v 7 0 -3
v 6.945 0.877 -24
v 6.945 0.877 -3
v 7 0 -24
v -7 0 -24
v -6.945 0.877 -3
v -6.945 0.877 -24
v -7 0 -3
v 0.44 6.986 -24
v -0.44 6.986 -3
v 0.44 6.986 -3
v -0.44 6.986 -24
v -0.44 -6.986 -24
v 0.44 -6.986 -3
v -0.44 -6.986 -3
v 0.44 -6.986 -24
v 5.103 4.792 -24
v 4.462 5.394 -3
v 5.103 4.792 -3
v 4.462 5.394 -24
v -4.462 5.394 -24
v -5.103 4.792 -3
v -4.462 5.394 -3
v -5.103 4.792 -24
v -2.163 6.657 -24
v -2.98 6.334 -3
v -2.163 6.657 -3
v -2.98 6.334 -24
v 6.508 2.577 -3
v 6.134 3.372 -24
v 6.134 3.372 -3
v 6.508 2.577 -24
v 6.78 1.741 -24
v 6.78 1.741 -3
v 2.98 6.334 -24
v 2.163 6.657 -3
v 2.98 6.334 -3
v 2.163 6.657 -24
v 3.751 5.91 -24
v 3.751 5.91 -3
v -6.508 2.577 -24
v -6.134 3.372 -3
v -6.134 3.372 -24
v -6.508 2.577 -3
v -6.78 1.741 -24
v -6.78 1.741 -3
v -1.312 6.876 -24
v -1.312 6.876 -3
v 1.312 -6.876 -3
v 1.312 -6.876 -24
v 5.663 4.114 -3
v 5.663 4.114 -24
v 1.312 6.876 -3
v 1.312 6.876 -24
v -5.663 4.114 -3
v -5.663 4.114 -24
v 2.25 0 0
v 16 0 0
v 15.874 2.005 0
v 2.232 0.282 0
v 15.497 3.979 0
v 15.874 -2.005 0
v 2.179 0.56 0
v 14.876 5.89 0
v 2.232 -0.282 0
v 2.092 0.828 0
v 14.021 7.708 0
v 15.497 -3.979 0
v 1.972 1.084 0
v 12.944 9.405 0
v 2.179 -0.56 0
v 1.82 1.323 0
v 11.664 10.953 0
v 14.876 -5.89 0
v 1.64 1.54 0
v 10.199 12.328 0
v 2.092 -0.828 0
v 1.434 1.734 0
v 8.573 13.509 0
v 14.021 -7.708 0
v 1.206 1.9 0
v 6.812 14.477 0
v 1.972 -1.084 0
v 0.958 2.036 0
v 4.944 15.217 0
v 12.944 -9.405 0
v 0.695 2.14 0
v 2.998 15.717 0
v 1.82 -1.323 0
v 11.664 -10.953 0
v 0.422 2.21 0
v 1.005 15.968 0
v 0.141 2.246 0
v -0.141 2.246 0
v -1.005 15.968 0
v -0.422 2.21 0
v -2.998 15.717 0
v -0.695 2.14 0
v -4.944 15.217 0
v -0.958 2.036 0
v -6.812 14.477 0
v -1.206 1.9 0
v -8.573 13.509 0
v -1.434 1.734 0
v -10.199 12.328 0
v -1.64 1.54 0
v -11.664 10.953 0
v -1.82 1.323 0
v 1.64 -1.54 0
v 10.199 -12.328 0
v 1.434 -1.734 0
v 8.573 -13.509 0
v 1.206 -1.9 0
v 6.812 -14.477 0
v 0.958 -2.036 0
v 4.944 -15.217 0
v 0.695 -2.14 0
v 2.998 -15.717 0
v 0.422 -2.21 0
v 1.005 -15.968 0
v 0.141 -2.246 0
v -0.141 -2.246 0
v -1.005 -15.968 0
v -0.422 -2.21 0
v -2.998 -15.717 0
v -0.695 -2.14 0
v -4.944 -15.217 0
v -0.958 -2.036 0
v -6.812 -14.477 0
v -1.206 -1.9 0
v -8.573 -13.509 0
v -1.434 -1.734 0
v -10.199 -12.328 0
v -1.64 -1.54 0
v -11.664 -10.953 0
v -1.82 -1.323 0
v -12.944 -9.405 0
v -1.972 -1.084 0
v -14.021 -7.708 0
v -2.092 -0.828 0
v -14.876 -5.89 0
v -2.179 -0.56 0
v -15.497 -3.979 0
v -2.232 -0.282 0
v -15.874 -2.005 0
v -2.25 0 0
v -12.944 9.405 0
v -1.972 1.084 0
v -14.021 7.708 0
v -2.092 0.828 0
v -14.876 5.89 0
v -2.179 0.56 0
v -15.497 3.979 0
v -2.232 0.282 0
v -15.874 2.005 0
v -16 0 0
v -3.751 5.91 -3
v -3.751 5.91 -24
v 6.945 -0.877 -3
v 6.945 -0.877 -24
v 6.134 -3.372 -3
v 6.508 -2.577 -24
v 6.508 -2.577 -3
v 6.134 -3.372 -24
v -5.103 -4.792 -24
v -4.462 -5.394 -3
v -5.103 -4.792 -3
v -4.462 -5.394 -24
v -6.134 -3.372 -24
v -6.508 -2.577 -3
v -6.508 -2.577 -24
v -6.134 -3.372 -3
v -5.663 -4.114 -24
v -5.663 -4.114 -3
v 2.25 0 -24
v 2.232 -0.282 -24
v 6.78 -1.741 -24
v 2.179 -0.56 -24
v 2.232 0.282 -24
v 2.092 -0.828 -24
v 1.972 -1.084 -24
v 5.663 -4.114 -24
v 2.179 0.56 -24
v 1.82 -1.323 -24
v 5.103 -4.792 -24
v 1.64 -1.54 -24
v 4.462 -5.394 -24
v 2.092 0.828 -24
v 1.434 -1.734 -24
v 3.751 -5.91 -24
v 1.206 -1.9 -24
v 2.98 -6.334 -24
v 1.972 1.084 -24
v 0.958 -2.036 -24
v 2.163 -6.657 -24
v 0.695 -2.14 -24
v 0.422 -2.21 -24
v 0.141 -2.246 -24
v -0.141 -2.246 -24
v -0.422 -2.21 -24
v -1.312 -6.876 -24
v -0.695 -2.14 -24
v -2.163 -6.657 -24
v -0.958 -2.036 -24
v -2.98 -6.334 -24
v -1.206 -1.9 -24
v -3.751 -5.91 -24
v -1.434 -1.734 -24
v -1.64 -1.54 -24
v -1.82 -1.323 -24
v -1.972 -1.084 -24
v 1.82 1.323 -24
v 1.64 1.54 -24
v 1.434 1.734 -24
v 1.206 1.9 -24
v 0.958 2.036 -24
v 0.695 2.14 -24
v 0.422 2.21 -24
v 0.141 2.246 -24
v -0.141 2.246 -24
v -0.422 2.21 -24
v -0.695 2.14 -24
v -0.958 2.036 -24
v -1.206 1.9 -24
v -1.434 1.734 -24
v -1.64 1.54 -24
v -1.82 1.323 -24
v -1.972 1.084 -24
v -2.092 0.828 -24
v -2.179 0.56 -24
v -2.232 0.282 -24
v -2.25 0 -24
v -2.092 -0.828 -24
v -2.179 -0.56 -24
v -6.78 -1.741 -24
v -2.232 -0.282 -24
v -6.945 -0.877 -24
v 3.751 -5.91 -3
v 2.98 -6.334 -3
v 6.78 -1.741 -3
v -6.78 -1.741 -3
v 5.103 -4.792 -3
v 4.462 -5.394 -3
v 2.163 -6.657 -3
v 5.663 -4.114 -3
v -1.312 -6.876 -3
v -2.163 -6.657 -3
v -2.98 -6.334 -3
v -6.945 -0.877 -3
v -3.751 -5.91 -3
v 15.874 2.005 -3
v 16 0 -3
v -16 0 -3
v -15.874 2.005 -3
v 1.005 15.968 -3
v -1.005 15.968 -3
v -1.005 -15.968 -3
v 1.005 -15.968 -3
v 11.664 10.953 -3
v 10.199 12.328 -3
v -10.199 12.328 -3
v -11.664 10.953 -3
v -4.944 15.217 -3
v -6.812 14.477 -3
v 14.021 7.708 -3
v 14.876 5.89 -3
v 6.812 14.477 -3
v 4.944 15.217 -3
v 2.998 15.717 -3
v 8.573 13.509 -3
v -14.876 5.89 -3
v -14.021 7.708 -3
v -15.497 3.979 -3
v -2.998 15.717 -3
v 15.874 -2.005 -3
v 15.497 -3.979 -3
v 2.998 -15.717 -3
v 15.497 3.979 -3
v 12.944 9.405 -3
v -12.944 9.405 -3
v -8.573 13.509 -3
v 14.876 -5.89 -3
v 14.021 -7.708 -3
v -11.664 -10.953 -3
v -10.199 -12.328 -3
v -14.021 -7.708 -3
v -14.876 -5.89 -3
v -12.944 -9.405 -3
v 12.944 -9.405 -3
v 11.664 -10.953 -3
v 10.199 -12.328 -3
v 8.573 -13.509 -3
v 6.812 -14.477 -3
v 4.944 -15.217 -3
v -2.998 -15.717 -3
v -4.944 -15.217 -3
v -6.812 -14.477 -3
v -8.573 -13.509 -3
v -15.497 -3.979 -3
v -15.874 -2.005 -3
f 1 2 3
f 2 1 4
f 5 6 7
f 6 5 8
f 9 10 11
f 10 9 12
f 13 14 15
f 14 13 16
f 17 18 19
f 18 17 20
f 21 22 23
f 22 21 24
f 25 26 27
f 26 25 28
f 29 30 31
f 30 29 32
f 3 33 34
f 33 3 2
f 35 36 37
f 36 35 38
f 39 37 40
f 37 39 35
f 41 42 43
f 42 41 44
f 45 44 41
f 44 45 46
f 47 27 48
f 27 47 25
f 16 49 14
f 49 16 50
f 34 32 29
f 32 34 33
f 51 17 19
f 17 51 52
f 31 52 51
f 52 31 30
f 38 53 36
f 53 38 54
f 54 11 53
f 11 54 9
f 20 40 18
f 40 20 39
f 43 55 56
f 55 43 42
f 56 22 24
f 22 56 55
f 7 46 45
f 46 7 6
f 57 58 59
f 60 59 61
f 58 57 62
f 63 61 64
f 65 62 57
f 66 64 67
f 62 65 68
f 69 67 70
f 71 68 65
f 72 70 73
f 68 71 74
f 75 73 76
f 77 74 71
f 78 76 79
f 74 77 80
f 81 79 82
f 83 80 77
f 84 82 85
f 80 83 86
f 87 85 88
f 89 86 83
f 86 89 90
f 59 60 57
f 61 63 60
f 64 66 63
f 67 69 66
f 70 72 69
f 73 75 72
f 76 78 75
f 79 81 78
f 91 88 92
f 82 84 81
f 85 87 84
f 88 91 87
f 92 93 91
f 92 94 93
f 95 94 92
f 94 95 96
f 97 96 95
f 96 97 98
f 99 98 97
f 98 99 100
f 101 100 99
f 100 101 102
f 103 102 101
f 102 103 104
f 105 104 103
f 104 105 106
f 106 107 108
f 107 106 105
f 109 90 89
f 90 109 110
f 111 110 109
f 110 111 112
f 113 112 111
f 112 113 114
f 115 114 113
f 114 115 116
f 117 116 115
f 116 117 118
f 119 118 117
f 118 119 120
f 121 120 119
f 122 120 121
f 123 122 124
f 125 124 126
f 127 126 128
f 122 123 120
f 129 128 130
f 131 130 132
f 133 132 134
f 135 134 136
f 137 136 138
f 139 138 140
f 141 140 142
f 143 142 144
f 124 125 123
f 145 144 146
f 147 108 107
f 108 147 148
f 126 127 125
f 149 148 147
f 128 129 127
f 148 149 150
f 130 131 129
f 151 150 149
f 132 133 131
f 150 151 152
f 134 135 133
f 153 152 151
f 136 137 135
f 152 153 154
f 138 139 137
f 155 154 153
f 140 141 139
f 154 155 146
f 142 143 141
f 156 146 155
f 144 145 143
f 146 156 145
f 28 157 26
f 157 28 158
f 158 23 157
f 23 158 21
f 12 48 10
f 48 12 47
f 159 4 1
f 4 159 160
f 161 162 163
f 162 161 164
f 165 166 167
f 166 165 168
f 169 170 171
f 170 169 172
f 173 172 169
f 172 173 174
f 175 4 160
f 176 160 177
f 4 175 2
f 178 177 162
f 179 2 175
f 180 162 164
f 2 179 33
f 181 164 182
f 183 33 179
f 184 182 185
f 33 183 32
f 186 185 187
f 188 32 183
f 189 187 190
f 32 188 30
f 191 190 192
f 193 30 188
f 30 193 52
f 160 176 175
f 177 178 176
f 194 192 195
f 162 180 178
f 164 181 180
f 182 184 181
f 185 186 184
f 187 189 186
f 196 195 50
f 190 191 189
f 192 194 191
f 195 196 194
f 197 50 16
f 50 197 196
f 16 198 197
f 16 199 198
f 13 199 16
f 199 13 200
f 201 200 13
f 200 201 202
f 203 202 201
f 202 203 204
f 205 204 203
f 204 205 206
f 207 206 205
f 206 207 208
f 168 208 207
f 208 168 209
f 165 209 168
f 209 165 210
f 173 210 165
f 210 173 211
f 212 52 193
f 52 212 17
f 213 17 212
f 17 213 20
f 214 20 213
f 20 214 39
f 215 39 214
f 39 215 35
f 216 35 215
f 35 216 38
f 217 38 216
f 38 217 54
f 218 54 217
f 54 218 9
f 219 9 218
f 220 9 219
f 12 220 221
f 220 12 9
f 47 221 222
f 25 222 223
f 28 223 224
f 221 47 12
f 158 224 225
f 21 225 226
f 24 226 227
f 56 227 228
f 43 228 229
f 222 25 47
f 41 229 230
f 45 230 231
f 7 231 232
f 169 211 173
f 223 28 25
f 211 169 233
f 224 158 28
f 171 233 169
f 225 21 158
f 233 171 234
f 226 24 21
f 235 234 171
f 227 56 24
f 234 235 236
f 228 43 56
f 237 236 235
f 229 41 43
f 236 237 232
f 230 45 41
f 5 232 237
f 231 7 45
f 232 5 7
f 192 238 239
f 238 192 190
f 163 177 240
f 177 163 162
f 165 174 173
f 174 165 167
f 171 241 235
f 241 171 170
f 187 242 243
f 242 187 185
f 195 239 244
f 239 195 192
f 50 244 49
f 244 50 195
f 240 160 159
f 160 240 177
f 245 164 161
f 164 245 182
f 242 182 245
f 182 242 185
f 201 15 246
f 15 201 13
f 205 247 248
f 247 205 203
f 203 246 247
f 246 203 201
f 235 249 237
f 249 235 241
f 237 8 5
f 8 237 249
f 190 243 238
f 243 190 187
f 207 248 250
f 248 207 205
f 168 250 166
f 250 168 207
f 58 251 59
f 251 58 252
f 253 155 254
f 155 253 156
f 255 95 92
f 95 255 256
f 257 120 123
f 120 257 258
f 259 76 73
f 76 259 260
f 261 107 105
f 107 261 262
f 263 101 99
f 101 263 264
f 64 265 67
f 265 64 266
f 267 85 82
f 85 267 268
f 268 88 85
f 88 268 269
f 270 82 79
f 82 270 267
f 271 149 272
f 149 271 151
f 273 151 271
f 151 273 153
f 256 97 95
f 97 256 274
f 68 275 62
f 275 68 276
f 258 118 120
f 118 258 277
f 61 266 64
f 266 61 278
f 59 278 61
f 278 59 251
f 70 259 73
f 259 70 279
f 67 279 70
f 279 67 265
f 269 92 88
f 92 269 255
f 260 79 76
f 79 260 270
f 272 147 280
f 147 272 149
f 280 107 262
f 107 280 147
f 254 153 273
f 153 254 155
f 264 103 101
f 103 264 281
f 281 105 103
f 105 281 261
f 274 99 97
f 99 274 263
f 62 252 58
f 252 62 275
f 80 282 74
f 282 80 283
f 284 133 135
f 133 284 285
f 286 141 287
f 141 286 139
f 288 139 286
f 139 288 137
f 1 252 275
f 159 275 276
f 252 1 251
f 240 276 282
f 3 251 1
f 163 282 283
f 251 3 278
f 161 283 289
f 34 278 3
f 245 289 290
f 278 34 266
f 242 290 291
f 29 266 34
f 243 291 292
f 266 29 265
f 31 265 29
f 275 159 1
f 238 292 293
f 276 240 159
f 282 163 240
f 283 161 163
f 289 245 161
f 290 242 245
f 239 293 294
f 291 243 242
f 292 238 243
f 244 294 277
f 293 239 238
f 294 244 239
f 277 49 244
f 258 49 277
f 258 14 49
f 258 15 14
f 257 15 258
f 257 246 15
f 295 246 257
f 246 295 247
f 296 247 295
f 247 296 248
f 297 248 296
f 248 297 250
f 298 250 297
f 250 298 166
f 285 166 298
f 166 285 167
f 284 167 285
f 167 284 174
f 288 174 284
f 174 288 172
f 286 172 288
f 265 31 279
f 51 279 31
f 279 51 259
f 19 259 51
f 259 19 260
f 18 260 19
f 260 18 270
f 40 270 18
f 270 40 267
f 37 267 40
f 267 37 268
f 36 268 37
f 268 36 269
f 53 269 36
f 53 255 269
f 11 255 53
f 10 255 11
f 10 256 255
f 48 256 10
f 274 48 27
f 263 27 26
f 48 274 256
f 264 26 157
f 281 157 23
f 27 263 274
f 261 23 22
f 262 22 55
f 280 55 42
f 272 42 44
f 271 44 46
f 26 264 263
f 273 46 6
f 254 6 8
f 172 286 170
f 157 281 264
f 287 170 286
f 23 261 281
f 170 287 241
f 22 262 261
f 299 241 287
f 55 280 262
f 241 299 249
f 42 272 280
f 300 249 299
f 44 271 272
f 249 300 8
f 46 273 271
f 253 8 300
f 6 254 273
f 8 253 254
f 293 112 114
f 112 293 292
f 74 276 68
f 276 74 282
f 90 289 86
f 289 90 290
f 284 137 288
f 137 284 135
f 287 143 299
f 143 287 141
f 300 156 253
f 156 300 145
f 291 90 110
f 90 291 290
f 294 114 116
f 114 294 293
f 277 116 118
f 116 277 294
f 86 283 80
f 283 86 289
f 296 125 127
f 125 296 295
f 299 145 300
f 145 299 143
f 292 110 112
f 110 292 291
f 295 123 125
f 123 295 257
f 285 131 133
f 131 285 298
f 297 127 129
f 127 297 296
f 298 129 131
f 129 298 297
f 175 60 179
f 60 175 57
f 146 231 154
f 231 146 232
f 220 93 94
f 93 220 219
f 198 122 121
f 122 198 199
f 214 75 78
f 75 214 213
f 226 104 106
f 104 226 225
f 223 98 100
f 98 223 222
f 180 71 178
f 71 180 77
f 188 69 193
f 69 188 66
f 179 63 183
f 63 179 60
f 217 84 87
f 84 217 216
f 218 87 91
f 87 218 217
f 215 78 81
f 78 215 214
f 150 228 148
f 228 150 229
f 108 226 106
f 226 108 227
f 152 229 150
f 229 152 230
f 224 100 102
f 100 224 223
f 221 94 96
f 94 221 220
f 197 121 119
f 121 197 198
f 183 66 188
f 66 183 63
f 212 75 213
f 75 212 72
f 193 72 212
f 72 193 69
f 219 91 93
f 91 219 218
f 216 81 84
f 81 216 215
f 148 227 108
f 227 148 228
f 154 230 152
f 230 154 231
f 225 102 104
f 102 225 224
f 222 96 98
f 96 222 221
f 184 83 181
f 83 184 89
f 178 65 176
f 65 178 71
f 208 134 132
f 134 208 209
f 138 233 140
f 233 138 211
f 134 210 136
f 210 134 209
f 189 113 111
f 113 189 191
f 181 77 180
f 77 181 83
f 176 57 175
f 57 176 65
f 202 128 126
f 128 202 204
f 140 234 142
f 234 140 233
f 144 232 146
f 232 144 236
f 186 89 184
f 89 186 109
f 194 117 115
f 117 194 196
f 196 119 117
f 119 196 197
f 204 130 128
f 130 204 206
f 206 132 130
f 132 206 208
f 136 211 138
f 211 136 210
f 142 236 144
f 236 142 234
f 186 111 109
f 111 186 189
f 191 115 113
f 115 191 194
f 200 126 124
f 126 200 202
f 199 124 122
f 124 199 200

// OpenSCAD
$fn = 50;


difference() {
	union() {
		translate(v = [0, 0, -24.0000000000]) {
			cylinder(h = 24, r = 7.0000000000);
		}
		translate(v = [0, 0, -3.0000000000]) {
			cylinder(h = 3, r = 16.0000000000);
		}
	}
	union() {
		#translate(v = [0, 0, -24]) {
			cylinder(h = 24, r = 2.2500000000);
		}
	}
}
